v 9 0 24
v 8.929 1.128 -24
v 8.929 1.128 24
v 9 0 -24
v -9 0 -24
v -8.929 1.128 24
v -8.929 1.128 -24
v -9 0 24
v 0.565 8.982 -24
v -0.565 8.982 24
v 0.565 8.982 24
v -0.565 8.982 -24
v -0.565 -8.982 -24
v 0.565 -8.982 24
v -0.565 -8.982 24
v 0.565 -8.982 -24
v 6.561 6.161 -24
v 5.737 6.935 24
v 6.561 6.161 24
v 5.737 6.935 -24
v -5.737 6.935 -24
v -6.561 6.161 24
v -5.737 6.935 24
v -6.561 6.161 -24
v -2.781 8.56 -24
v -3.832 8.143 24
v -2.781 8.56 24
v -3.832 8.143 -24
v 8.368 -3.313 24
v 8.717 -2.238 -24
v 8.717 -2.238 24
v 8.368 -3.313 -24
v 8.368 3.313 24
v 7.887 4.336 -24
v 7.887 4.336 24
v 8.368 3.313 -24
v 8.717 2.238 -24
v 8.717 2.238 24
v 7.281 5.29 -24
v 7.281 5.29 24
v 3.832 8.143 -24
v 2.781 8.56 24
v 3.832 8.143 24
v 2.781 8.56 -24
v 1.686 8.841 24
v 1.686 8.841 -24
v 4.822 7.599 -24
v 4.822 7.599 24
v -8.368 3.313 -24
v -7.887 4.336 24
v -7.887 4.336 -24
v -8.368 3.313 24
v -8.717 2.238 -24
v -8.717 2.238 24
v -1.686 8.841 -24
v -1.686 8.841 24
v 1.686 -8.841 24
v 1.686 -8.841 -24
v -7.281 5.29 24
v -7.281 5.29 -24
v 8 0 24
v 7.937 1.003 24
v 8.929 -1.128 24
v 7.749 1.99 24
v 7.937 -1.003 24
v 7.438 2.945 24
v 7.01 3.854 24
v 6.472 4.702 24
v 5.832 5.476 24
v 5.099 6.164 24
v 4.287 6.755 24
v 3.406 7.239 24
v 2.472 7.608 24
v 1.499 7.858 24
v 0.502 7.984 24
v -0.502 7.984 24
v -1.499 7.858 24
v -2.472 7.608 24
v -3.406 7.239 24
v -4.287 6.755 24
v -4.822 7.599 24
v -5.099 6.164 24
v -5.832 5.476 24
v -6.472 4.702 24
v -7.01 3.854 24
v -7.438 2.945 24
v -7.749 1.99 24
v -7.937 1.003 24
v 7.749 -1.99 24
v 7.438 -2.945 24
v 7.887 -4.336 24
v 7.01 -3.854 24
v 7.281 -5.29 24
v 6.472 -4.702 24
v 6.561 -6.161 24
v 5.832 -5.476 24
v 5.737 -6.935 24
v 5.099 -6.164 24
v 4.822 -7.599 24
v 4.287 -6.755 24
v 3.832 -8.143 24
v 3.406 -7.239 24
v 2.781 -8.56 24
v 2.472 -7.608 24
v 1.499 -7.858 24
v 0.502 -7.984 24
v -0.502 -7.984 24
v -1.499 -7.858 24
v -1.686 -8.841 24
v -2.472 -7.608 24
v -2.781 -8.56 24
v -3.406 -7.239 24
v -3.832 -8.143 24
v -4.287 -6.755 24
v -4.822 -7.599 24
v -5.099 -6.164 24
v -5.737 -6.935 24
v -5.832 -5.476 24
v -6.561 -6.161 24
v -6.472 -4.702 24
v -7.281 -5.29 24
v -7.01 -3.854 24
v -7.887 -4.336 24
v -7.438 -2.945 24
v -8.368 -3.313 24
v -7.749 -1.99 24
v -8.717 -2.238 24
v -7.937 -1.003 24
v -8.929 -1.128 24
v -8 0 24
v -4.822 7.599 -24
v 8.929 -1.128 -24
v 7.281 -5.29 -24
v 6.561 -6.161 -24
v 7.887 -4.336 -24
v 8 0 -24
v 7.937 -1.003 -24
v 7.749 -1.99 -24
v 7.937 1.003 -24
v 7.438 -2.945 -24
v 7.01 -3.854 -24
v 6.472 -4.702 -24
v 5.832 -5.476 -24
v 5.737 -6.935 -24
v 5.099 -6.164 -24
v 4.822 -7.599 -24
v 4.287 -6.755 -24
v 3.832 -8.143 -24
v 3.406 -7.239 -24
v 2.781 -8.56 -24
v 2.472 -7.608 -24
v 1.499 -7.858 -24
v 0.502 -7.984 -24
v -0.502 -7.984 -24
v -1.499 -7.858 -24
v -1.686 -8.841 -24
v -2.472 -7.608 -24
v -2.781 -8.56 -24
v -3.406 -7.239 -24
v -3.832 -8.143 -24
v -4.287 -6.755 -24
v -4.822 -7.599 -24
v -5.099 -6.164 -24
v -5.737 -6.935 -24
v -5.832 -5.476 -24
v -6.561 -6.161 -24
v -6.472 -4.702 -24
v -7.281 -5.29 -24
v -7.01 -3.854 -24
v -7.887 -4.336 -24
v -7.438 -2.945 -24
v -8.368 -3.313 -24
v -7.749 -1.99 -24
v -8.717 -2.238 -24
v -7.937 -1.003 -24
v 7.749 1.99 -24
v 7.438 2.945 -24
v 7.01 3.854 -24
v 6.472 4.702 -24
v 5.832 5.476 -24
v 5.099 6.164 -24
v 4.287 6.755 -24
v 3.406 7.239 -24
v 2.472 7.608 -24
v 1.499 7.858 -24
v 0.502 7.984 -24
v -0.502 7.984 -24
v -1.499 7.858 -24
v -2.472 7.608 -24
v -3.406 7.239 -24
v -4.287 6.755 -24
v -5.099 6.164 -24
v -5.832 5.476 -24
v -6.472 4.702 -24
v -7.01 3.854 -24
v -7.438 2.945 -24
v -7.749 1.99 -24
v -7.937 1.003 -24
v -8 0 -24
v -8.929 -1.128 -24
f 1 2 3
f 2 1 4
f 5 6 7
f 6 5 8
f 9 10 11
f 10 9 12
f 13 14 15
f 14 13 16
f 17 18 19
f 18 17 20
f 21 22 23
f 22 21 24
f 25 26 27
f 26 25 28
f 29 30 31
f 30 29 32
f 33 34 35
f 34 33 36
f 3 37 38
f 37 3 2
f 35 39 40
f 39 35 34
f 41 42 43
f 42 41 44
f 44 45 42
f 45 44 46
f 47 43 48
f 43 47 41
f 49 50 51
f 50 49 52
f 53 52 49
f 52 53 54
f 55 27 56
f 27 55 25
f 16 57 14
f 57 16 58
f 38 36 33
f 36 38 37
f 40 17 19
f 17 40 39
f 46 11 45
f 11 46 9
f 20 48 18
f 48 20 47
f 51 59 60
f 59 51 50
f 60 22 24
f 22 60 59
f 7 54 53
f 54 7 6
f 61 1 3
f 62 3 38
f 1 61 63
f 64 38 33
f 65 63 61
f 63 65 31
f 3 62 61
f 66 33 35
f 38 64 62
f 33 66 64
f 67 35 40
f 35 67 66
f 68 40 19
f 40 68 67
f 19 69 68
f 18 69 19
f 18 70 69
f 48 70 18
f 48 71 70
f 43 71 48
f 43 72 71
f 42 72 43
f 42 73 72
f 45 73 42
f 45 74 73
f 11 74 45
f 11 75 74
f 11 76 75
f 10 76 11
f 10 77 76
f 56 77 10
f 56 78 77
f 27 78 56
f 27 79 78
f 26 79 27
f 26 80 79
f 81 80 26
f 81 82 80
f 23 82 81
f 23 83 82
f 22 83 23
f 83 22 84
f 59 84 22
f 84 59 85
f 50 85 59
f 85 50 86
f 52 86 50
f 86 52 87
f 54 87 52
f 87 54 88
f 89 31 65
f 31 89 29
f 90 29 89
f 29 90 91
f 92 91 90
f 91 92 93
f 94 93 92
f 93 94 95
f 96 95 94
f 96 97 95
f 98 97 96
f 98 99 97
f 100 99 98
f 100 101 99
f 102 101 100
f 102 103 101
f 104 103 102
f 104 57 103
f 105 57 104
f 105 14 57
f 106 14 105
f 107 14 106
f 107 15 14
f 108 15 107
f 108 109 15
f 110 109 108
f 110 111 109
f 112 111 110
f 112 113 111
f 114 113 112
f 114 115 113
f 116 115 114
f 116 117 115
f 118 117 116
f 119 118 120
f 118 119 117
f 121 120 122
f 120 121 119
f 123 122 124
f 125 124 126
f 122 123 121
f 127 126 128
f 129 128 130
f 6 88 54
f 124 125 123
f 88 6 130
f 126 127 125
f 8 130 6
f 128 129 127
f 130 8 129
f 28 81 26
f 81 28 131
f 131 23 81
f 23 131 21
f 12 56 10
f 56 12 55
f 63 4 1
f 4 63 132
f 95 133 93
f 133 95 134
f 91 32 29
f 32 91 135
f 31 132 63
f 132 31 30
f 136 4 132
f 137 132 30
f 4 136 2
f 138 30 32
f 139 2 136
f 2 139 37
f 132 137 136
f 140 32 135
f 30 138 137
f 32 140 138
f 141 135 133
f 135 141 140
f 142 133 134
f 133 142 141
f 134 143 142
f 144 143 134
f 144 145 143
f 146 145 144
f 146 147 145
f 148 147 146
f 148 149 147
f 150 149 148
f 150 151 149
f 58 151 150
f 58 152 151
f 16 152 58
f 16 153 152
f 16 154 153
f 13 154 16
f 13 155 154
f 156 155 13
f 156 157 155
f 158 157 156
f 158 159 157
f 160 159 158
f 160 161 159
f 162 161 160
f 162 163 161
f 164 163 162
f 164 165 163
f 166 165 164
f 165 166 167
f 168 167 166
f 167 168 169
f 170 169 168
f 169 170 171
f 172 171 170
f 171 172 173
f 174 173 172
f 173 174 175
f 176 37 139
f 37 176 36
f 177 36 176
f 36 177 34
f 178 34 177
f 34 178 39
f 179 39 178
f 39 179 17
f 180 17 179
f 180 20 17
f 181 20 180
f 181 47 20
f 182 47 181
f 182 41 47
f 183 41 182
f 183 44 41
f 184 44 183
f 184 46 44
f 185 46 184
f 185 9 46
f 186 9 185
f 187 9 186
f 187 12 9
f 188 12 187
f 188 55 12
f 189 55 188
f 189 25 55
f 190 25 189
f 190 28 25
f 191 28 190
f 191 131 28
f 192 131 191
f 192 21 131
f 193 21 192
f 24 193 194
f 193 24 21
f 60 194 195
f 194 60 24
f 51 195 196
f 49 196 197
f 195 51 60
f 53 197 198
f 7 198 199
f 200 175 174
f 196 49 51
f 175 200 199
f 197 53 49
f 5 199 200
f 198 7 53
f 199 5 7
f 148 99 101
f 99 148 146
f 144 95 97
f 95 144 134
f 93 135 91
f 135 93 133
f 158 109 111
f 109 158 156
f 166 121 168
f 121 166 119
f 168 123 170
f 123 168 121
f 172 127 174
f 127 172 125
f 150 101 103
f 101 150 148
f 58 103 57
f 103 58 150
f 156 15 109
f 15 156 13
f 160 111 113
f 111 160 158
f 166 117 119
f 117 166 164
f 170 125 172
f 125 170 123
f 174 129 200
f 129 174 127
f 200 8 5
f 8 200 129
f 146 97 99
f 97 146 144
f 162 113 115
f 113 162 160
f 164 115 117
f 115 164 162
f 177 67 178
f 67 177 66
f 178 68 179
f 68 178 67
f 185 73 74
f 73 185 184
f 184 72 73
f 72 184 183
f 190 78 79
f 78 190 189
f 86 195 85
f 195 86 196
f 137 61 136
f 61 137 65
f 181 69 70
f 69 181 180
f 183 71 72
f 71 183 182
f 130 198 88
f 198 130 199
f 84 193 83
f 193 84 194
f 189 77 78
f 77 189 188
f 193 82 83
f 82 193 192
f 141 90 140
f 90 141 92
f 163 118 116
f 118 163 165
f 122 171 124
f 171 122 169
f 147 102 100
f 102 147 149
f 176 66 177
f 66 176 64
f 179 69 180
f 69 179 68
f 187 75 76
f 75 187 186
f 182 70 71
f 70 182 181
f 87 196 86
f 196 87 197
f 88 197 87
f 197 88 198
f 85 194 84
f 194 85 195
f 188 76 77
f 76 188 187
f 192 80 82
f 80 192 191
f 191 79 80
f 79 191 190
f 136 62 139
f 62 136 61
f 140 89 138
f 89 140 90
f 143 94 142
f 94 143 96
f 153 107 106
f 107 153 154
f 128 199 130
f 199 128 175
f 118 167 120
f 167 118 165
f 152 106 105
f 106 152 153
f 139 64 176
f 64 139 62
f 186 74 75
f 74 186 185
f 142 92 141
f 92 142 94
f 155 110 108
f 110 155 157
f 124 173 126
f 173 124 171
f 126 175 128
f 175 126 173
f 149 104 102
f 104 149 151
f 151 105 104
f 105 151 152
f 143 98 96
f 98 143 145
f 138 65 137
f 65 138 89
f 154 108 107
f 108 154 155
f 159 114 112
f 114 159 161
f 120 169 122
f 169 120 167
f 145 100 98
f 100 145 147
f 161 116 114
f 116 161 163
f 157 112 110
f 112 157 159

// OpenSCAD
$fn = 50;


difference() {
	union() {
		translate(v = [0, 0, -24.0000000000]) {
			cylinder(h = 48, r = 9.0000000000);
		}
	}
	union() {
		translate(v = [0, 0, -100.0000000000]) {
			cylinder(h = 200, r = 8);
		}
	}
}
